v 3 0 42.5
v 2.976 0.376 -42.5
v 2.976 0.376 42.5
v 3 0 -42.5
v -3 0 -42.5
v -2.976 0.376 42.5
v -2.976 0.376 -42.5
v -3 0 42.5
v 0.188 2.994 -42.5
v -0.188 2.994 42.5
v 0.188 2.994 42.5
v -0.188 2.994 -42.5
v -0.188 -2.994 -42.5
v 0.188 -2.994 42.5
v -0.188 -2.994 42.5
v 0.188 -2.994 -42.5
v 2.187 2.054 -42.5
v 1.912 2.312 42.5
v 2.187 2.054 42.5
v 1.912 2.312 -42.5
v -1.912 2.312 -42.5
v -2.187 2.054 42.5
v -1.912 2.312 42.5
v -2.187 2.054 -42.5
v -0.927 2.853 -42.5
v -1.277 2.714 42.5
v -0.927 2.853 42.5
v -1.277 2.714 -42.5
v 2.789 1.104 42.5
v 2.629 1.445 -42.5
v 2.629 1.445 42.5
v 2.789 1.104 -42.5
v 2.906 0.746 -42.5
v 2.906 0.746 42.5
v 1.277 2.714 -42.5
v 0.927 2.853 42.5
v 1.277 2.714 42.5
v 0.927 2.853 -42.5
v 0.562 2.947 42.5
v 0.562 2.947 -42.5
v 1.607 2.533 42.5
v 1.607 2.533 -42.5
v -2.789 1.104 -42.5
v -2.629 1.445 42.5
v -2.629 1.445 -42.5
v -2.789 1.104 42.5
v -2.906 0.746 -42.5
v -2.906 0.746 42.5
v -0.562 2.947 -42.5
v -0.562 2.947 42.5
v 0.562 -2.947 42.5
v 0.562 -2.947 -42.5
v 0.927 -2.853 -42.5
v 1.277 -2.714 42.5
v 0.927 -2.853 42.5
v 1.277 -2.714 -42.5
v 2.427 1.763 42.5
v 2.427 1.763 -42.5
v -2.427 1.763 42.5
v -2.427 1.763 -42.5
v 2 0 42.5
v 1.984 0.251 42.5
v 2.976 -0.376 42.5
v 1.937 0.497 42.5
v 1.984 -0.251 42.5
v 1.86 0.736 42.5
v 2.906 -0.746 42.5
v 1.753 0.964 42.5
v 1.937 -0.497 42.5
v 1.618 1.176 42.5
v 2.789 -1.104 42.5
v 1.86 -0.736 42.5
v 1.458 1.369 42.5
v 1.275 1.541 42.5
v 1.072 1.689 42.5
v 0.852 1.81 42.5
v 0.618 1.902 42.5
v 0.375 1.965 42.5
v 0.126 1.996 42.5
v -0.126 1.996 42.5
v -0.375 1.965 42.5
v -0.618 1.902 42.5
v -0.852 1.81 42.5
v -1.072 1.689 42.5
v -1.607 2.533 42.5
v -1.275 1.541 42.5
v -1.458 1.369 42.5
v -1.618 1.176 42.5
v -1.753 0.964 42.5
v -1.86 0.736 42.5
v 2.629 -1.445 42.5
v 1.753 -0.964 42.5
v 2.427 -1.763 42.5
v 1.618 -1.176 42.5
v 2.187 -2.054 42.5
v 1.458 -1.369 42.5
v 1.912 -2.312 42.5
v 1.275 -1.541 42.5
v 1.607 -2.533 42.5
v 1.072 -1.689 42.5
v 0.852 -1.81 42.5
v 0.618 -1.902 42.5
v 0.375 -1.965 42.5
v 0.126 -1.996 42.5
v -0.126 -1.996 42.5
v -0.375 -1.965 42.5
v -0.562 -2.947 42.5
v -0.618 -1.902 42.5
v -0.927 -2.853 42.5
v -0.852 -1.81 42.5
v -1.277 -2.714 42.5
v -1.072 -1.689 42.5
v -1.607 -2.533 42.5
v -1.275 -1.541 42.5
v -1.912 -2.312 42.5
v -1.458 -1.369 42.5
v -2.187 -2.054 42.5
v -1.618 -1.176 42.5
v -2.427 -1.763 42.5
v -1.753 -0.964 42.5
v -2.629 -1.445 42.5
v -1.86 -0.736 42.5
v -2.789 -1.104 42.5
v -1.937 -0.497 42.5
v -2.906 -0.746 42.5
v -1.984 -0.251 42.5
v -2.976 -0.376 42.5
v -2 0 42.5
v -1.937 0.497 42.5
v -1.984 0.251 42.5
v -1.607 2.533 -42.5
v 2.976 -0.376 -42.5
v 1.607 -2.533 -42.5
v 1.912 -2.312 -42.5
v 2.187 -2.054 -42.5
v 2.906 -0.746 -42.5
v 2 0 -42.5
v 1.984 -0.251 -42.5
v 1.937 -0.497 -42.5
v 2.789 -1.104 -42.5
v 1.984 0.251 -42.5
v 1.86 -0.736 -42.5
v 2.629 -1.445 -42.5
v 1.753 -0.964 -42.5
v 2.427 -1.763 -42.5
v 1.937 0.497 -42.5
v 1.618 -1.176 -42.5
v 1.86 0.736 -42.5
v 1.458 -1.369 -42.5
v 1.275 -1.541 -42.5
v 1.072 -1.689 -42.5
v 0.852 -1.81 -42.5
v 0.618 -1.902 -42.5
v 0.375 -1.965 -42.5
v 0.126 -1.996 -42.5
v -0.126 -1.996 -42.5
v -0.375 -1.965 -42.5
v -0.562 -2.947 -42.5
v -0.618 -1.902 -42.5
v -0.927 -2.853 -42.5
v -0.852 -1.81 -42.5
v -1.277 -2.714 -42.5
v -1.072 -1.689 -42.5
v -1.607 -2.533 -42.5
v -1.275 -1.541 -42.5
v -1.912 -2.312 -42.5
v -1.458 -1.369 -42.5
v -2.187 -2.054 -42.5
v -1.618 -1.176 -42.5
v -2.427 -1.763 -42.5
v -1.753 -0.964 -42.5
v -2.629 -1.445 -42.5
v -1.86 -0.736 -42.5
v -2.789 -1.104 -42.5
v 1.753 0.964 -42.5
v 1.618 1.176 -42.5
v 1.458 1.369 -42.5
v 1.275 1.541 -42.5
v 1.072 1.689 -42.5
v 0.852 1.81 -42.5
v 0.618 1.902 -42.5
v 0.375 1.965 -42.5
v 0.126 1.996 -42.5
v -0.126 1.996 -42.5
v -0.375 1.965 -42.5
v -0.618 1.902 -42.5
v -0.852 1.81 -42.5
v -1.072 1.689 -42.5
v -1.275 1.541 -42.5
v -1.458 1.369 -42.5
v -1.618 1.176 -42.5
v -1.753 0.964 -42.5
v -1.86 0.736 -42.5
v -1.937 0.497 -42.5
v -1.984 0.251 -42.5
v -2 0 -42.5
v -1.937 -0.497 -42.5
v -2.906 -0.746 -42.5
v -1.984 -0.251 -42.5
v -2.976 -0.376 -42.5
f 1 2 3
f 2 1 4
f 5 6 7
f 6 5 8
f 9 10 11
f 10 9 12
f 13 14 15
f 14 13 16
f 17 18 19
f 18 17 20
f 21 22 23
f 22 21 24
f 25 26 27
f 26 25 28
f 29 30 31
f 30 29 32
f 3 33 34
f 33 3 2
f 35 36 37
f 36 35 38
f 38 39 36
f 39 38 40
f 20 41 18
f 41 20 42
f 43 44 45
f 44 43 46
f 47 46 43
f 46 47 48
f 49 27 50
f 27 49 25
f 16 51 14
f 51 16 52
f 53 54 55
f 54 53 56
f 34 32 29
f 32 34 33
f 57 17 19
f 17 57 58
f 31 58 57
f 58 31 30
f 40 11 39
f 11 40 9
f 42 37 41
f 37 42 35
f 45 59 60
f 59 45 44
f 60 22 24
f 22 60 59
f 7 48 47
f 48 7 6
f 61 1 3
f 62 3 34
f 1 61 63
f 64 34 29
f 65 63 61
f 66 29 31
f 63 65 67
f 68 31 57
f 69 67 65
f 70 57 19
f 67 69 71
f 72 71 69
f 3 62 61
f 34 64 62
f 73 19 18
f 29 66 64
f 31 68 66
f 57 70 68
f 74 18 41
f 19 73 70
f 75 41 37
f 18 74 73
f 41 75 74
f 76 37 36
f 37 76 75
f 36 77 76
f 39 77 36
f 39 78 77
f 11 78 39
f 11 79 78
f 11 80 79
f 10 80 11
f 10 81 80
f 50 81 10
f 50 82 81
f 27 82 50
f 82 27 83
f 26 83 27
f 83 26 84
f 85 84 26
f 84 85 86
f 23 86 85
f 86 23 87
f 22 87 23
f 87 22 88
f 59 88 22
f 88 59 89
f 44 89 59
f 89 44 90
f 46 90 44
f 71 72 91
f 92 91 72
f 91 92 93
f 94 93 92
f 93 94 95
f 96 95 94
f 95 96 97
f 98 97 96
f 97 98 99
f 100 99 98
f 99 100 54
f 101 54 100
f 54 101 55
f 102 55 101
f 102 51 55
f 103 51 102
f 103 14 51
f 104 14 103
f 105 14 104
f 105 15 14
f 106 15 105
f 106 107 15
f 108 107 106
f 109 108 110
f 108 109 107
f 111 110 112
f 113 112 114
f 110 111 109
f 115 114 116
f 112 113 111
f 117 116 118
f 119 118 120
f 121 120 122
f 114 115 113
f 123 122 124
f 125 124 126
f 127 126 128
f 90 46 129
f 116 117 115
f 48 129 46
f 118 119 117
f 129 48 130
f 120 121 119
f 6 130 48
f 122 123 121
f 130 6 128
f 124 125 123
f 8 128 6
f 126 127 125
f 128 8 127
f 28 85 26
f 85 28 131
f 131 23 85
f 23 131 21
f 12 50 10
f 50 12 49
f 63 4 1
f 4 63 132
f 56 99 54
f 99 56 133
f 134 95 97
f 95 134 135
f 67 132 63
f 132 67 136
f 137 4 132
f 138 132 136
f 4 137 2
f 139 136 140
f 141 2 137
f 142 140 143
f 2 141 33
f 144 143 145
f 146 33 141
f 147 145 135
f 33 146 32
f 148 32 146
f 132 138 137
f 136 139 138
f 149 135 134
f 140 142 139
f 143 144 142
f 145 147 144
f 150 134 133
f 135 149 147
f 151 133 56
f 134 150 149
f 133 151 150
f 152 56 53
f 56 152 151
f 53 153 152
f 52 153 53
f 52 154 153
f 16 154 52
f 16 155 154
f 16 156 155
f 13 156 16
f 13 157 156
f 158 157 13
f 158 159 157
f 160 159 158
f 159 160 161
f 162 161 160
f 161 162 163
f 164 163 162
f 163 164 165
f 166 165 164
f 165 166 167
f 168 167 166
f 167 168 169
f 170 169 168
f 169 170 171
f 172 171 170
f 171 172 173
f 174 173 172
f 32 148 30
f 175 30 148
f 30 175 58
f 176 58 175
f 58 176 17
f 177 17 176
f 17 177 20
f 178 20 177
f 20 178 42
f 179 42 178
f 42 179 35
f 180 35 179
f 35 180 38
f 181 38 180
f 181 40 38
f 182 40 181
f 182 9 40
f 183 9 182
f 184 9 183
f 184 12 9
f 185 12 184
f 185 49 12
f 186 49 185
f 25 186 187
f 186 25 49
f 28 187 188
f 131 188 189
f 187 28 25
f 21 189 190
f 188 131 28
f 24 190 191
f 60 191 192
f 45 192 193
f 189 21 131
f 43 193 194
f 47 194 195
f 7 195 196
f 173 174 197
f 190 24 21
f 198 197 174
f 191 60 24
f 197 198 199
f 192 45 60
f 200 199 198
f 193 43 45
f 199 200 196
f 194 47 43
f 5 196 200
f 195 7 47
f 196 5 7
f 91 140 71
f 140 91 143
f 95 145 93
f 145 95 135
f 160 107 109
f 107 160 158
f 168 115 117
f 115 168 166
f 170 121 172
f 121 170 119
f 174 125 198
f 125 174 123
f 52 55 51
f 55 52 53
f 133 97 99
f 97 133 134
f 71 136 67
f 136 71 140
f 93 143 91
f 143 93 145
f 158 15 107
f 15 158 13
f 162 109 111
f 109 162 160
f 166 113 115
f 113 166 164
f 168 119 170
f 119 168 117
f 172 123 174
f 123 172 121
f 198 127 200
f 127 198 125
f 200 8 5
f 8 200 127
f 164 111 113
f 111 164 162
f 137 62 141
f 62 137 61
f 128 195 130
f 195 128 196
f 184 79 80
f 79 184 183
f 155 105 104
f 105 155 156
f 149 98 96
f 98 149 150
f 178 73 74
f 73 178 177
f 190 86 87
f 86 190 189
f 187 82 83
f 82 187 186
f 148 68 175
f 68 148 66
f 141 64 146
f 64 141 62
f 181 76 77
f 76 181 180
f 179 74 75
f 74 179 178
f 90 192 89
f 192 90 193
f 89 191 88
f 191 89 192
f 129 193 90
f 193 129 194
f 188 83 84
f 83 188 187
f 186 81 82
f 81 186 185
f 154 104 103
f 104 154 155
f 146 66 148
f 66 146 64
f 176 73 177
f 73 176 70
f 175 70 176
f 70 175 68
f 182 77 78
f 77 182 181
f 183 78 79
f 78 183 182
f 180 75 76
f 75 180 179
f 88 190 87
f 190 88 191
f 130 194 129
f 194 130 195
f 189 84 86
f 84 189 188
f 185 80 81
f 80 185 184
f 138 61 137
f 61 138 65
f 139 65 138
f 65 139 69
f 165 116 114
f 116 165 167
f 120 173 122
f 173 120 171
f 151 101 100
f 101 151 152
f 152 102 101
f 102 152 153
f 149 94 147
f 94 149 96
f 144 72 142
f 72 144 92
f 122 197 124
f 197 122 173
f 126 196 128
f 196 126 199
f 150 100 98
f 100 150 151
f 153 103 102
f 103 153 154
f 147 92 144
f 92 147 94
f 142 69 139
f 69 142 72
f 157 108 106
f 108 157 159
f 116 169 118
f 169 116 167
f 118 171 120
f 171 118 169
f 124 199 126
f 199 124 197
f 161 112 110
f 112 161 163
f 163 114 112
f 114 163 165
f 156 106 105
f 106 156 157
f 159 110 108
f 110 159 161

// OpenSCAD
$fn = 50;


difference() {
	union() {
		translate(v = [0, 0, -42.5000000000]) {
			cylinder(h = 85, r = 3.0000000000);
		}
	}
	union() {
		translate(v = [0, 0, -100.0000000000]) {
			cylinder(h = 200, r = 2);
		}
	}
}
